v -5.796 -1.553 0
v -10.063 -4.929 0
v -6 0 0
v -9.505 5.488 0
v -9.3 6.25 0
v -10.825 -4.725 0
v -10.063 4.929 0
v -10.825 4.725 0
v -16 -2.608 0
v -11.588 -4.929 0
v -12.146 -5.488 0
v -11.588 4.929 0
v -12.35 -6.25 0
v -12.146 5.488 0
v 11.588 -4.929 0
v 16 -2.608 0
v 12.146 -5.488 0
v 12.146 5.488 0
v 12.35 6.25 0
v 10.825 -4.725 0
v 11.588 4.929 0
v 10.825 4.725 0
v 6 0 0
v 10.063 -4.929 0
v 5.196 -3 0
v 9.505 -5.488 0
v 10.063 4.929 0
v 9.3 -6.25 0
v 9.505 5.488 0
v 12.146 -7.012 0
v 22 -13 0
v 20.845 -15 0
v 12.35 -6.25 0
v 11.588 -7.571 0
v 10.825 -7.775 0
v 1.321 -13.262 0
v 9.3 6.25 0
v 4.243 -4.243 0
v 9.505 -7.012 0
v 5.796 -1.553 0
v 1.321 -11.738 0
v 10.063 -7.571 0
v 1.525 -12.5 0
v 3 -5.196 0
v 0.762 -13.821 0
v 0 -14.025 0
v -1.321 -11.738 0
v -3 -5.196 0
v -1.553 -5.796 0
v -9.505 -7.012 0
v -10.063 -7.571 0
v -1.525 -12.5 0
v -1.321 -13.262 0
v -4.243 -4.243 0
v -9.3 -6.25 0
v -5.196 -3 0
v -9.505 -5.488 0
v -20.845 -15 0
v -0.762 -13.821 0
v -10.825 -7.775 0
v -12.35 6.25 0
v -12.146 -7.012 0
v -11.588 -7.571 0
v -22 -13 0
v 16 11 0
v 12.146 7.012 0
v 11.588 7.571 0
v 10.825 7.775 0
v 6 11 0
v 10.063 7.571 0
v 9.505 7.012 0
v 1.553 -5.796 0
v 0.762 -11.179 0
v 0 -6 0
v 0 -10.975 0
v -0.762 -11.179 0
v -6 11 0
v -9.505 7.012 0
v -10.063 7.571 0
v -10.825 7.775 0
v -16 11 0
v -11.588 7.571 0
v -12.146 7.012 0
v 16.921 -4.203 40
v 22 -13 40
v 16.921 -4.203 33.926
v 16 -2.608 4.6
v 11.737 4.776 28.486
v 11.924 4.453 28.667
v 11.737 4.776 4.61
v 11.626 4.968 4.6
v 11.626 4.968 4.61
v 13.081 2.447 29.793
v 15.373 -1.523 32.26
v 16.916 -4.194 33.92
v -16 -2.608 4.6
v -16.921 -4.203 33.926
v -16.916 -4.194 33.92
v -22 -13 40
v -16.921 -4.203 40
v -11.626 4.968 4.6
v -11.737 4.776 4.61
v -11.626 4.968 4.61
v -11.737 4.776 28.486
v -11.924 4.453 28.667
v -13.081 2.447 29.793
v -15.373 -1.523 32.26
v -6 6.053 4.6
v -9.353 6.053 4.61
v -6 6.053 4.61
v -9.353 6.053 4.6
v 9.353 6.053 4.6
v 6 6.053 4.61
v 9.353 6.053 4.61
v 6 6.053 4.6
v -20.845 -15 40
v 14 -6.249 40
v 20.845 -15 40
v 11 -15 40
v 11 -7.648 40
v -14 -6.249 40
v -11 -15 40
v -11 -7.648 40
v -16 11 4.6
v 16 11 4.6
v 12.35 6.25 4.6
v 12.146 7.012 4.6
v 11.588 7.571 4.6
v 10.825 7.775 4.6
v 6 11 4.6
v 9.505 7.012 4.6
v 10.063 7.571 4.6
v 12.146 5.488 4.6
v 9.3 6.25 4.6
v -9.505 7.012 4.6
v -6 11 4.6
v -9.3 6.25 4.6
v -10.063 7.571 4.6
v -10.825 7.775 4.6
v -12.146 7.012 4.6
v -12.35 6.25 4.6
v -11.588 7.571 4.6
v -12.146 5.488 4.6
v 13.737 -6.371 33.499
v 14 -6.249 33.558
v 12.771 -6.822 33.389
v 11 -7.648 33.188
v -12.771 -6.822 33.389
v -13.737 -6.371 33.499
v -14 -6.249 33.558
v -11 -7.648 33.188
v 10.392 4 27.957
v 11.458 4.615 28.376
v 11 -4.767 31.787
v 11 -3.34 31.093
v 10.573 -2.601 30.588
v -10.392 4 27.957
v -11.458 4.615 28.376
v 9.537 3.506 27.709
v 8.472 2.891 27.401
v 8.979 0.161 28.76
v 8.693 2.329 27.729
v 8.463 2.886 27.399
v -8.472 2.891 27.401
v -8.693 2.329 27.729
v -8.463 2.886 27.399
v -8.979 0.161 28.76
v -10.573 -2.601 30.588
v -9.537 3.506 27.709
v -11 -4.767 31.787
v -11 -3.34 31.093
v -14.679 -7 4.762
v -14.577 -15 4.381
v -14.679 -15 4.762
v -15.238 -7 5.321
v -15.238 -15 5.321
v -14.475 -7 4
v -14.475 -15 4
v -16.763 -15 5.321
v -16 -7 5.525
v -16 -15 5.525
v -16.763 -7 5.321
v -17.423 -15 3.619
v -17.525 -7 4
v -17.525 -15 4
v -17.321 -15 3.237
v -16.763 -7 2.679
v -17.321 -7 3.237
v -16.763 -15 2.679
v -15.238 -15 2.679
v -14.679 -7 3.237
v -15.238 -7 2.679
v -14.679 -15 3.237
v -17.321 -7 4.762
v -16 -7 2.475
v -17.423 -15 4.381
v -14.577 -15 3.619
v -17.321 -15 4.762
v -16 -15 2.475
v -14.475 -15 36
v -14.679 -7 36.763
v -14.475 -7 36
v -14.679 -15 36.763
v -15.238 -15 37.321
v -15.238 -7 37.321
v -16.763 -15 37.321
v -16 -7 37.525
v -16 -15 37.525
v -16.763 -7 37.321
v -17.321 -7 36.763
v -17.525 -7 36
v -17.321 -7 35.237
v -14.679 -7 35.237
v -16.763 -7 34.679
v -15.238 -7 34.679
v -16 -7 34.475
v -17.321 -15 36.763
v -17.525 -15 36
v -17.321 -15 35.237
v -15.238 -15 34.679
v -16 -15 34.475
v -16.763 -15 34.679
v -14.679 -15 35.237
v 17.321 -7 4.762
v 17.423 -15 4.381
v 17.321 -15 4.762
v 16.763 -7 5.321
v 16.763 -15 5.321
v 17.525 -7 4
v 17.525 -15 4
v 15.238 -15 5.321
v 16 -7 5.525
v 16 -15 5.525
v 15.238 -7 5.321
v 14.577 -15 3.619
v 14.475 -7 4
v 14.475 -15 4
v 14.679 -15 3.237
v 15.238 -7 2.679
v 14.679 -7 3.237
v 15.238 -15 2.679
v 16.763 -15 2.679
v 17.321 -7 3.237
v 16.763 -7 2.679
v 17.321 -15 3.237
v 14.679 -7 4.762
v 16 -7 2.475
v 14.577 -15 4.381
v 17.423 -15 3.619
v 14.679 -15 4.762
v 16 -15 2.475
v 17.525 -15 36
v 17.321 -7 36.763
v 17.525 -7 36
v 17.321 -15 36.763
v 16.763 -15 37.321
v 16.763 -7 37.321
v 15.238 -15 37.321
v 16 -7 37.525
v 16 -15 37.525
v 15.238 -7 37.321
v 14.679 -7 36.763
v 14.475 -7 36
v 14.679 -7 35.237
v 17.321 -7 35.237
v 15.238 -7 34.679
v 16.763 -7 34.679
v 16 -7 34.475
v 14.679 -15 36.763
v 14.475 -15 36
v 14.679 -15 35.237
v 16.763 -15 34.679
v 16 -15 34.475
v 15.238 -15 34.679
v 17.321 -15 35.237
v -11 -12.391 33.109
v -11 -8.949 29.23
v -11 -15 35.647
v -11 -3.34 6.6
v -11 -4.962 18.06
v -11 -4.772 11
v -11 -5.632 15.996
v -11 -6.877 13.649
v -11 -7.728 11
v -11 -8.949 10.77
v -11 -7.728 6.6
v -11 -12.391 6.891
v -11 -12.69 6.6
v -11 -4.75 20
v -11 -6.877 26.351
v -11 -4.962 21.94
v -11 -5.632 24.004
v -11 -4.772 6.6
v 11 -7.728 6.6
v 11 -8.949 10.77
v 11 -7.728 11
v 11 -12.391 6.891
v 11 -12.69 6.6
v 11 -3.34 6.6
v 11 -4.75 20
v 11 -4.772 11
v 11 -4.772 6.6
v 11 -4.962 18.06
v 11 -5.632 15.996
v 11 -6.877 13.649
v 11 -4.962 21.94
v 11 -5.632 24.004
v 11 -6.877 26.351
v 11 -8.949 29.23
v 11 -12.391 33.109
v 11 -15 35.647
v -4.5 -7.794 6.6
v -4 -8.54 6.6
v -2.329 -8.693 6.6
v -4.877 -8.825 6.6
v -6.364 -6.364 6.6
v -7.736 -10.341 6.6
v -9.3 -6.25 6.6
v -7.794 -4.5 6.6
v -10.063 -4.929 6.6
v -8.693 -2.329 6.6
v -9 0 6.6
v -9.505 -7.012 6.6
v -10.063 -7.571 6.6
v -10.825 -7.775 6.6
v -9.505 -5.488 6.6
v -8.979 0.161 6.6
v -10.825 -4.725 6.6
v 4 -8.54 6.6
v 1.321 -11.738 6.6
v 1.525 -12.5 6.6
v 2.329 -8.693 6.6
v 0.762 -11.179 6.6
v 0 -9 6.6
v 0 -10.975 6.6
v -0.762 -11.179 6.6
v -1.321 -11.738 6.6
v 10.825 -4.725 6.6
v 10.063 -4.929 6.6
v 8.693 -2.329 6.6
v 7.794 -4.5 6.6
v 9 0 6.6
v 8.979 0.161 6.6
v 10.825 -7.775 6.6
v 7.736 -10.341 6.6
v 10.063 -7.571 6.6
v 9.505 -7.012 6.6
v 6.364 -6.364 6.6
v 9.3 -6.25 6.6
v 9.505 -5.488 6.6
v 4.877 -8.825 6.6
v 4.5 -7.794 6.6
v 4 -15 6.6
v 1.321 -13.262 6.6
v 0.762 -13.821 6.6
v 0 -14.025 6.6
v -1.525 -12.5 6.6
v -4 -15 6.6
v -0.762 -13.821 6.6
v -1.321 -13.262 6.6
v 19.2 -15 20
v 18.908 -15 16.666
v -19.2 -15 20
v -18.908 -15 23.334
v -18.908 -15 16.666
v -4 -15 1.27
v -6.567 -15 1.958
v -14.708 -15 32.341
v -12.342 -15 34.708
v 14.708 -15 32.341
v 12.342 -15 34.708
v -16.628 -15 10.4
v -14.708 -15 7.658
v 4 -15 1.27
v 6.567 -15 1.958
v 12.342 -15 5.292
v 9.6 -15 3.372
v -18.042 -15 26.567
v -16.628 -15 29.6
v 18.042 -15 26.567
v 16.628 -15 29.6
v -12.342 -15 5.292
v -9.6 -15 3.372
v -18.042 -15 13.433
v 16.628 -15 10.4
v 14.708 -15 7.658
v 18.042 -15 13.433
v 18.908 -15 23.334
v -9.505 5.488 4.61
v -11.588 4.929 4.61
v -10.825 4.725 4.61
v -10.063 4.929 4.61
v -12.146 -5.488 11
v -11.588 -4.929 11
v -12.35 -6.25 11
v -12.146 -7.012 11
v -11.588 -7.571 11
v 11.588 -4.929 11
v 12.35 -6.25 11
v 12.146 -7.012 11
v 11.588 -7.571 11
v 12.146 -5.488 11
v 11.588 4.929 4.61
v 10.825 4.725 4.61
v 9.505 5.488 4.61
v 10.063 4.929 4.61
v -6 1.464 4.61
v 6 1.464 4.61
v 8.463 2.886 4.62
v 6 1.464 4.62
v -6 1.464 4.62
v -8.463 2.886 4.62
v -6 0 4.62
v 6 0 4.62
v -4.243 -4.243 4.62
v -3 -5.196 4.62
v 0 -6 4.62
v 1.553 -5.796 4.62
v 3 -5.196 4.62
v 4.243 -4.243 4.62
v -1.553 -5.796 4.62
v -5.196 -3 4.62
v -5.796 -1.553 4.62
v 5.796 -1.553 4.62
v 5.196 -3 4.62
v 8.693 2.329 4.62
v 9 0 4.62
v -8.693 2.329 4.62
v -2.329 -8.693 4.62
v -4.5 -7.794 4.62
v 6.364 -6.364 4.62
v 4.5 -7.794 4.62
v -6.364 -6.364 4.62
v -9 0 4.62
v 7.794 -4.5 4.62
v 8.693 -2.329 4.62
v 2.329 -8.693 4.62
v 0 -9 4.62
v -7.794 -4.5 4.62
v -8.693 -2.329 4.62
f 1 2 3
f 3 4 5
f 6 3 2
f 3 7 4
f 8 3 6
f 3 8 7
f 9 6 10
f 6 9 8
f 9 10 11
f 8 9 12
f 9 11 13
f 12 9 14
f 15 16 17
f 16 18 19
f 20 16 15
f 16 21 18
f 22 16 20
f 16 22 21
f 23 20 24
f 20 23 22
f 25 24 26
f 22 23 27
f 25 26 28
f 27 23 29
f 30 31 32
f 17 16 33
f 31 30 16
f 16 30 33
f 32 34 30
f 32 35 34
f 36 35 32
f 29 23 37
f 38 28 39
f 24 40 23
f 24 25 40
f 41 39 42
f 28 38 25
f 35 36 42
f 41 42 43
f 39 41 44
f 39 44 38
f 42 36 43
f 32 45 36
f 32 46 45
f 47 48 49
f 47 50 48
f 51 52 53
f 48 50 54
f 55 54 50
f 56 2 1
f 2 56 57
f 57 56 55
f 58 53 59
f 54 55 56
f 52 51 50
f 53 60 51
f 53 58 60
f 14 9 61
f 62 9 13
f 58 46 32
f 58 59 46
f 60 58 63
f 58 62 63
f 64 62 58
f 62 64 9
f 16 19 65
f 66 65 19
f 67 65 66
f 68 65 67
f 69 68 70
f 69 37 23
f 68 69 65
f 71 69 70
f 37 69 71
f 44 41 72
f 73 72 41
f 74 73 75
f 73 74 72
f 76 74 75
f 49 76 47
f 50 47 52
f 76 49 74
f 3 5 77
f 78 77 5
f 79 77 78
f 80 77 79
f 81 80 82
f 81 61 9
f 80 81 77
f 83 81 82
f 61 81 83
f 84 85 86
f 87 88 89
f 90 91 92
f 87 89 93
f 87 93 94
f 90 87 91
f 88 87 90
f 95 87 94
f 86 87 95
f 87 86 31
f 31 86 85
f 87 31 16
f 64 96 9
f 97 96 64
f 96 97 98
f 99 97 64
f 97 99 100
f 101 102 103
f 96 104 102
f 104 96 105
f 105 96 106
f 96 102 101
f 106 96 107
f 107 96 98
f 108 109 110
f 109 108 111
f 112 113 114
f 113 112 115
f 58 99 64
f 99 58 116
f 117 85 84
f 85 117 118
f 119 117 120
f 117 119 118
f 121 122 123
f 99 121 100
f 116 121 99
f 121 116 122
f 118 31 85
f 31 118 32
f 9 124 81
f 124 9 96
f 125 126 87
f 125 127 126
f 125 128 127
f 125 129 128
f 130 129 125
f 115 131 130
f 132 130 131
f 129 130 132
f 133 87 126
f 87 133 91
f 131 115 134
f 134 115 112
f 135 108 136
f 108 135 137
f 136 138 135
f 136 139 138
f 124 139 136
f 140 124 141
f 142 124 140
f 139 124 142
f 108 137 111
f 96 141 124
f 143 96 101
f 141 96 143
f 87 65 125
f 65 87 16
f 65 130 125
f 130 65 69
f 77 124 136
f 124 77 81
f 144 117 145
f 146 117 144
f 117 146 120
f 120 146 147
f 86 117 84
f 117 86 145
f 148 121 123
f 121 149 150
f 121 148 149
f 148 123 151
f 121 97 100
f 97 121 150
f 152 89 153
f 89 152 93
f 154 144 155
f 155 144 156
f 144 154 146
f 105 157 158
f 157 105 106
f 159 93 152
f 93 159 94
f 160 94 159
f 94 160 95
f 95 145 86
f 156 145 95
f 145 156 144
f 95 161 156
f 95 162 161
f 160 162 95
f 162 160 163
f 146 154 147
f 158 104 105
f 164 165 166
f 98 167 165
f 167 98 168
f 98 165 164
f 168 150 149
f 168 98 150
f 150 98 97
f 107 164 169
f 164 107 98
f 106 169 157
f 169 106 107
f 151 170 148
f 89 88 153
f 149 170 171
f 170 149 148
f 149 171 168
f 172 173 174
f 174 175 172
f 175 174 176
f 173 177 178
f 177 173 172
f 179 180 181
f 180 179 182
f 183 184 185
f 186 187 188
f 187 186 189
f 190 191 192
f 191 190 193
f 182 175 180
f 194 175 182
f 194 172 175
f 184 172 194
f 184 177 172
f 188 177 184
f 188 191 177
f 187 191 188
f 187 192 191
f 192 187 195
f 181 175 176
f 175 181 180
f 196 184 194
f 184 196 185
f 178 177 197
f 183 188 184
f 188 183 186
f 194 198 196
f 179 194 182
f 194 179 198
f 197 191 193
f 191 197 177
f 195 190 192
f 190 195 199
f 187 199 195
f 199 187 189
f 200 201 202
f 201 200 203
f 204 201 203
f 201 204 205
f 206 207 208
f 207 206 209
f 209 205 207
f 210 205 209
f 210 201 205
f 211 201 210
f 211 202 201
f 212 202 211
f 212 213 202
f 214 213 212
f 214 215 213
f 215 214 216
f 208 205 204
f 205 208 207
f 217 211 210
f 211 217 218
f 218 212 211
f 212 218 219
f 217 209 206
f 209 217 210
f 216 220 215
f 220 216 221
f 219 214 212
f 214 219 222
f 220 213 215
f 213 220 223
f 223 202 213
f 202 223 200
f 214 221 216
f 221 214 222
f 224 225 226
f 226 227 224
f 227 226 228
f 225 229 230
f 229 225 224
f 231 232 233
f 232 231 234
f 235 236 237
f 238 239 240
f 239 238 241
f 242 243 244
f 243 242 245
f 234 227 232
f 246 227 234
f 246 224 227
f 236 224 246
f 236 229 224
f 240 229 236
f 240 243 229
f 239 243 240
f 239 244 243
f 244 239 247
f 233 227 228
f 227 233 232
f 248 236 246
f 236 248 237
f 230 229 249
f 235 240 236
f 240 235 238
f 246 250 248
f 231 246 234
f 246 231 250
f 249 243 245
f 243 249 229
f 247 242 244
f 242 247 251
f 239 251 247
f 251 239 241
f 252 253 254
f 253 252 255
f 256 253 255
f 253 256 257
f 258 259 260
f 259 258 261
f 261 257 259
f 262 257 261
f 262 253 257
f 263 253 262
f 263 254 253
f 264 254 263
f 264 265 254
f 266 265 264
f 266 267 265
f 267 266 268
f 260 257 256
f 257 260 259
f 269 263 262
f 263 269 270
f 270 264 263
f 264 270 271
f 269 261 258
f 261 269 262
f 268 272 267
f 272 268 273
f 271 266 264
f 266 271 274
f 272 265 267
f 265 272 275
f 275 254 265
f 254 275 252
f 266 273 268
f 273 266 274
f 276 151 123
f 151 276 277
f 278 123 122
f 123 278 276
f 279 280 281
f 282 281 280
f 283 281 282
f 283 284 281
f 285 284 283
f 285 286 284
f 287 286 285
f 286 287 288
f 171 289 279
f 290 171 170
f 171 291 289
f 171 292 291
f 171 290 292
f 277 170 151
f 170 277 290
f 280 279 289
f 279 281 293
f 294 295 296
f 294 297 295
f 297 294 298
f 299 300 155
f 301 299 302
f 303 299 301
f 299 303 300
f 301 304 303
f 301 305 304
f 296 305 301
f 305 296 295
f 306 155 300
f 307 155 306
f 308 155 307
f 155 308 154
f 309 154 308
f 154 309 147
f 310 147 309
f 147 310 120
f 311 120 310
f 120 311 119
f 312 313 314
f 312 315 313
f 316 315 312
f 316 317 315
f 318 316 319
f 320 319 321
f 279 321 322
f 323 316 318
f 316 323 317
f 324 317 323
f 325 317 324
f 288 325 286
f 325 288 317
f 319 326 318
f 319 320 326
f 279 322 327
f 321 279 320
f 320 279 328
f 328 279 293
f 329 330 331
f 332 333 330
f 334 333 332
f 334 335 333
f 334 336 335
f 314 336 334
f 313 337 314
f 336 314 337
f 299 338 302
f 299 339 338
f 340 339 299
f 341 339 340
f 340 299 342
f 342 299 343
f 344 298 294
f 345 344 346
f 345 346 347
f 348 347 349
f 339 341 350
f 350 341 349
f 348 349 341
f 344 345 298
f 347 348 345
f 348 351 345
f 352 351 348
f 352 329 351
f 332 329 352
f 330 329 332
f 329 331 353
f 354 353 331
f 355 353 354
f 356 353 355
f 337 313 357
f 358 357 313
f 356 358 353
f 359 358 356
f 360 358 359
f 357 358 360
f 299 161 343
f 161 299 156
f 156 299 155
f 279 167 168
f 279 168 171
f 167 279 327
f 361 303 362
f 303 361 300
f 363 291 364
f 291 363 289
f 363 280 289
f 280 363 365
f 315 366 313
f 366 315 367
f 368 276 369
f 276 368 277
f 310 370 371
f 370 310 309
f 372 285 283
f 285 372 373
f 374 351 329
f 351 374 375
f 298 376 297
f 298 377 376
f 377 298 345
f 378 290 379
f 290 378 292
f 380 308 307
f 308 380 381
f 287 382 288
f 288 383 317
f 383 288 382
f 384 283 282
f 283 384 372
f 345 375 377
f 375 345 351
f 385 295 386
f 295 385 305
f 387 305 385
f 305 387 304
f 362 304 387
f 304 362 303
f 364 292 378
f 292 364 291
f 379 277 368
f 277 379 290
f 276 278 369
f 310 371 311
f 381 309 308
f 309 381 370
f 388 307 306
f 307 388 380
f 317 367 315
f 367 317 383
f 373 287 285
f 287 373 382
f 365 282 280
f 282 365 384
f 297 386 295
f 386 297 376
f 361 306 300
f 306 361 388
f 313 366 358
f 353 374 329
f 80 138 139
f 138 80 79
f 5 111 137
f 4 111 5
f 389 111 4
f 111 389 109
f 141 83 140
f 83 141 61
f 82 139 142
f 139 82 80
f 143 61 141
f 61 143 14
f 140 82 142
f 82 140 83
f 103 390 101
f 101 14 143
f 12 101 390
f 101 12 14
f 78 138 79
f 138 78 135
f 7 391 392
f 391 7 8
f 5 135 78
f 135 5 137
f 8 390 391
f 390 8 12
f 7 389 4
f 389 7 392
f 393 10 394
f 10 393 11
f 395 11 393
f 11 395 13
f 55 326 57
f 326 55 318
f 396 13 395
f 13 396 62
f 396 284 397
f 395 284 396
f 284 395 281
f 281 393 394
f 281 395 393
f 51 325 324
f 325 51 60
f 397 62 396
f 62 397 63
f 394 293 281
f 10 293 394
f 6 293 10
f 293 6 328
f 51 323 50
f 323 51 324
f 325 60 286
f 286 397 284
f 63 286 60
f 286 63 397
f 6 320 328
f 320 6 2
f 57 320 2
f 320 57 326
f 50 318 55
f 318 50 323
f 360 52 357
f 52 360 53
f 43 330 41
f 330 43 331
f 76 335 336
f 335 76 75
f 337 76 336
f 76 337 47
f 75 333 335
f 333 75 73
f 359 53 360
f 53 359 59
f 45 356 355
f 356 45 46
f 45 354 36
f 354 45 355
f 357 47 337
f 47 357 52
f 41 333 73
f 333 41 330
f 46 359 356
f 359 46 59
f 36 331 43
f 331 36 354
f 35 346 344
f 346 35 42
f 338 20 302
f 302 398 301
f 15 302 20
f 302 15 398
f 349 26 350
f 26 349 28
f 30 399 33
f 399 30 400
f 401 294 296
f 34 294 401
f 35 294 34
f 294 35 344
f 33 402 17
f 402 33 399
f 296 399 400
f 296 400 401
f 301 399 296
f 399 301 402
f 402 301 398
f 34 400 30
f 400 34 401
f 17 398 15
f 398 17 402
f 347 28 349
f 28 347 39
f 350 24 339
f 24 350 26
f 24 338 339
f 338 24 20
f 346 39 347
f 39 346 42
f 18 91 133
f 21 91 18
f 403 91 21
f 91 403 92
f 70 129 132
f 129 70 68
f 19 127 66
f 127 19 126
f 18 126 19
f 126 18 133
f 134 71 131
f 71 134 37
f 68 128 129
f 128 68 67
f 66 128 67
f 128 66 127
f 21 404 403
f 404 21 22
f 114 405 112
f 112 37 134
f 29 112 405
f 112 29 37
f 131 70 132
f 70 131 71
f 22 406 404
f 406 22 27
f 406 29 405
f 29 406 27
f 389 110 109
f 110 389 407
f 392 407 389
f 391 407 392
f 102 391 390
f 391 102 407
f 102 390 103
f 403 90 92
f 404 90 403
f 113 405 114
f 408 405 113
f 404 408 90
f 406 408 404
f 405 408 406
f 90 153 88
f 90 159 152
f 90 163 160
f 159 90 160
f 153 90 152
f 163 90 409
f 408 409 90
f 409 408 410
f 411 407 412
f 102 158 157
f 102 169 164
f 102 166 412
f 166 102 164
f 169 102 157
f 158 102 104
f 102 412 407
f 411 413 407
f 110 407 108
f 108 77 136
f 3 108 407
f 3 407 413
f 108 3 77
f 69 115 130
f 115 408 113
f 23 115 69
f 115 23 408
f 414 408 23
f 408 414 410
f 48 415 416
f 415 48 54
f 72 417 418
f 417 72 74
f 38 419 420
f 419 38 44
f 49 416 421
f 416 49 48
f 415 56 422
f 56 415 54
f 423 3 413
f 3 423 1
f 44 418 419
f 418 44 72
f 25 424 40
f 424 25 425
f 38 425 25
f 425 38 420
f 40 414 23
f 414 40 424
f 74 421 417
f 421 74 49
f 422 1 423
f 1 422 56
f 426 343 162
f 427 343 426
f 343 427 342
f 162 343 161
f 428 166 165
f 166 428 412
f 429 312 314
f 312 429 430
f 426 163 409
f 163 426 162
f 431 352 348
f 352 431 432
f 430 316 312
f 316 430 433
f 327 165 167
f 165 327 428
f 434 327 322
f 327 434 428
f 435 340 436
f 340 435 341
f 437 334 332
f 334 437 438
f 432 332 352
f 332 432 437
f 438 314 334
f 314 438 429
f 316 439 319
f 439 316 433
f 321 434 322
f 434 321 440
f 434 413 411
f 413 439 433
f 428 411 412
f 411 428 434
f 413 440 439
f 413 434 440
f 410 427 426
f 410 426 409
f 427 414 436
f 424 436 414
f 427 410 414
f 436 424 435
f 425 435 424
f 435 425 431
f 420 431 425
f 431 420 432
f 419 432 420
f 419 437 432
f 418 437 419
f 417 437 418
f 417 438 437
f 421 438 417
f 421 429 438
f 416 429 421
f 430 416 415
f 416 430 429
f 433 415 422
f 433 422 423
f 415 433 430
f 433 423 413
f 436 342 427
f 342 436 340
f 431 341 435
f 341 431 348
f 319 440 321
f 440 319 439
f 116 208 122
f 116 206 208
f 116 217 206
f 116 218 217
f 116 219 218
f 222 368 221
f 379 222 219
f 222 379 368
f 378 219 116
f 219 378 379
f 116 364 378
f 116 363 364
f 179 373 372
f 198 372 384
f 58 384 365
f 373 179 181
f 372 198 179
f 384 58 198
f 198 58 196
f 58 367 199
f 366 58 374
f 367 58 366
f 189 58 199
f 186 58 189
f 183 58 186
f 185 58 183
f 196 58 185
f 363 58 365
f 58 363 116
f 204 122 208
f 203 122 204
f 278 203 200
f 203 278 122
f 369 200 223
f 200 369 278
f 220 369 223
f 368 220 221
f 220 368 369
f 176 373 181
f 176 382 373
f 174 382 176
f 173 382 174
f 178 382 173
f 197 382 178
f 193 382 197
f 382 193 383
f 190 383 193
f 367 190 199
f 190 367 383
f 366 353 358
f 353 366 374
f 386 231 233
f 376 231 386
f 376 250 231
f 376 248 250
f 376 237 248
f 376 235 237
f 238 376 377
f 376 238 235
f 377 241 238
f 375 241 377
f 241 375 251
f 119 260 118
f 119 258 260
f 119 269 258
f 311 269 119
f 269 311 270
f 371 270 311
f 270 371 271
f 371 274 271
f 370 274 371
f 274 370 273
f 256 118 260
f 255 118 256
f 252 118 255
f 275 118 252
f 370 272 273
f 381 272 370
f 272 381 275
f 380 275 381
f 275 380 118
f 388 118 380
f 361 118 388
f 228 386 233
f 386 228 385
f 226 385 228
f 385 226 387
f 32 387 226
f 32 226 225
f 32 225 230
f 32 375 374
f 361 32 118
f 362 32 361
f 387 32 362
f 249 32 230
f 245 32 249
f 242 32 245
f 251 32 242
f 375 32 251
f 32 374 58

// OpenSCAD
// file: configuration.scad
/**
 * @author Johann Rocholl <johann@rocholl.net>
 * @license GPL-3.0
 */

// Increase this if your slicer or printer make holes too tight.
extra_radius = 0.1;

// OD = outside diameter, corner to corner.
m3_nut_od = 6.1;
m3_nut_radius = m3_nut_od/2 + 0.2 + extra_radius;
m3_washer_radius = 3.5 + extra_radius;

// Major diameter of metric 3mm thread.
m3_major = 2.85;
m3_radius = m3_major/2 + extra_radius;
m3_wide_radius = m3_major/2 + extra_radius + 0.2;

// NEMA17 stepper motors.
motor_shaft_diameter = 5;
motor_shaft_radius = motor_shaft_diameter/2 + extra_radius;

// Frame brackets. M3x8mm screws work best with 3.6 mm brackets.
thickness = 3.6;

// OpenBeam or Misumi. Currently only 15x15 mm, but there is a plan
// to make models more parametric and allow 20x20 mm in the future.
extrusion = 15;

// Placement for the NEMA17 stepper motors.
motor_offset = 44;
motor_length = 47;
// main file
/**
 * @author Johann Rocholl <johann@rocholl.net>
 * @license GPL-3.0
 */

include <configuration.scad>;

barrel_radius = 8;
barrel_height = 30;

groove_radius = 6;
groove_height = 4.6;

fan_offset = 15;

module hotend_fan() {
  difference() {
    union() {
      translate([0, 2 - fan_offset, 0])
        cylinder(r=22, h=40, $fn=6);
      translate([0, 0, groove_height/2])
        cube([32, 22, groove_height], center=true);
    }
    // Opposite side cutaway (outgoing airflow).
    translate([0, 38, groove_height + 0.01]) rotate([0, 0, 30])
      cylinder(r=40, h=200, $fn=6);
    // Groove mount insert slot.
    translate([0, 10, 0])
      cube([2*groove_radius, 20, 20], center=true);
    // Keep printed plastic away from the hotend.
    intersection() {
      translate([0, 18, 0]) rotate([0, 0, 30])
        cylinder(r=28, h=100, center=true, $fn=36);
      translate([0, 10, barrel_height-5])
        cylinder(r1=barrel_radius-1, r2=100, h=55, $fn=36);
    }
    // Groove mount.
    cylinder(r=groove_radius, h=200, center=true, $fn=24);
    // J-Head barrel.
    translate([0, 0, groove_height + 0.02])
      cylinder(r=barrel_radius + 1, h=100, $fn=24);
    // Fan mounting surface and screws.
    translate([0, -50 - fan_offset, 0])
      cube([100, 100, 100], center=true);
    for (x = [-16, 16]) {
      for (z = [-16, 16]) {
        translate([x, -fan_offset, z+20]) rotate([90, 0, 0]) #
          cylinder(r=m3_radius, h=16, center=true, $fn=12);
      }
    }
    // Vertical inner space.
    intersection() {
      cube([22, 100, 100], center=true);
      translate([0, -12, groove_height + 2])
        cylinder(r=16, h=40, $fn=6);
    }
    // Air funnel.
    difference() {
      translate([0, -1 - fan_offset, 20]) rotate([-90, 0, 0])
        cylinder(r1=20, r2=0, h=25, $fn=36);
      cube([8, 40, 40], center=true);
    }
    for (a = [60:60:359]) {
      rotate([0, 0, a]) translate([0, 12.5, 5]) #
        cylinder(r=m3_radius, h=12, center=true, $fn=12);
    }
  }
}

hotend_fan();

// Hotend barrel.
translate([0, 0, groove_height]) %
  cylinder(r=barrel_radius, h=barrel_height);

// 40mm fan.
translate([0, -5 - fan_offset, 20]) % difference() {
  cube([40, 10, 40], center=true);
  rotate([90, 0, 0,]) cylinder(r=19, h=20, center=true);
}
